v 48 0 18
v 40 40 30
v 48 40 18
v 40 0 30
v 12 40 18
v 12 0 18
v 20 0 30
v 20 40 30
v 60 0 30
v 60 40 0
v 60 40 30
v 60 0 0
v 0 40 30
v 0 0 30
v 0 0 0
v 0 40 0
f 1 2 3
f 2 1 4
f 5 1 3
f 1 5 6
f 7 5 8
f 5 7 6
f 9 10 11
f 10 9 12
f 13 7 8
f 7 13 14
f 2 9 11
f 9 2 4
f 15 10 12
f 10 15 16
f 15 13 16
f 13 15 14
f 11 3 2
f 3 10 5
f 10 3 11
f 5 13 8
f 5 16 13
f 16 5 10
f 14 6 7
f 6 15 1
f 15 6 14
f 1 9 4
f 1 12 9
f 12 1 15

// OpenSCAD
// 鳩尾槽塊（dovetail）— 由 ortho_lib_work/objects.py 產生，請改 objects.py 後重建
// 長方塊 60×40×30，頂面由前到後貫穿一道鳩尾槽：槽口寬 20、槽底寬 36、深 12。
difference() {
  union() {
    translate([0,0,0]) cube([60,40,30]);
  }
  union() {
    multmatrix([[1,0,0,0],[0,0,-1,41],[0,1,0,0],[0,0,0,1]]) linear_extrude(height=42) polygon([[12,18],[48,18],[40,30],[20,30]]);
    translate([20,-1,29]) cube([20,42,2]);
  }
}
